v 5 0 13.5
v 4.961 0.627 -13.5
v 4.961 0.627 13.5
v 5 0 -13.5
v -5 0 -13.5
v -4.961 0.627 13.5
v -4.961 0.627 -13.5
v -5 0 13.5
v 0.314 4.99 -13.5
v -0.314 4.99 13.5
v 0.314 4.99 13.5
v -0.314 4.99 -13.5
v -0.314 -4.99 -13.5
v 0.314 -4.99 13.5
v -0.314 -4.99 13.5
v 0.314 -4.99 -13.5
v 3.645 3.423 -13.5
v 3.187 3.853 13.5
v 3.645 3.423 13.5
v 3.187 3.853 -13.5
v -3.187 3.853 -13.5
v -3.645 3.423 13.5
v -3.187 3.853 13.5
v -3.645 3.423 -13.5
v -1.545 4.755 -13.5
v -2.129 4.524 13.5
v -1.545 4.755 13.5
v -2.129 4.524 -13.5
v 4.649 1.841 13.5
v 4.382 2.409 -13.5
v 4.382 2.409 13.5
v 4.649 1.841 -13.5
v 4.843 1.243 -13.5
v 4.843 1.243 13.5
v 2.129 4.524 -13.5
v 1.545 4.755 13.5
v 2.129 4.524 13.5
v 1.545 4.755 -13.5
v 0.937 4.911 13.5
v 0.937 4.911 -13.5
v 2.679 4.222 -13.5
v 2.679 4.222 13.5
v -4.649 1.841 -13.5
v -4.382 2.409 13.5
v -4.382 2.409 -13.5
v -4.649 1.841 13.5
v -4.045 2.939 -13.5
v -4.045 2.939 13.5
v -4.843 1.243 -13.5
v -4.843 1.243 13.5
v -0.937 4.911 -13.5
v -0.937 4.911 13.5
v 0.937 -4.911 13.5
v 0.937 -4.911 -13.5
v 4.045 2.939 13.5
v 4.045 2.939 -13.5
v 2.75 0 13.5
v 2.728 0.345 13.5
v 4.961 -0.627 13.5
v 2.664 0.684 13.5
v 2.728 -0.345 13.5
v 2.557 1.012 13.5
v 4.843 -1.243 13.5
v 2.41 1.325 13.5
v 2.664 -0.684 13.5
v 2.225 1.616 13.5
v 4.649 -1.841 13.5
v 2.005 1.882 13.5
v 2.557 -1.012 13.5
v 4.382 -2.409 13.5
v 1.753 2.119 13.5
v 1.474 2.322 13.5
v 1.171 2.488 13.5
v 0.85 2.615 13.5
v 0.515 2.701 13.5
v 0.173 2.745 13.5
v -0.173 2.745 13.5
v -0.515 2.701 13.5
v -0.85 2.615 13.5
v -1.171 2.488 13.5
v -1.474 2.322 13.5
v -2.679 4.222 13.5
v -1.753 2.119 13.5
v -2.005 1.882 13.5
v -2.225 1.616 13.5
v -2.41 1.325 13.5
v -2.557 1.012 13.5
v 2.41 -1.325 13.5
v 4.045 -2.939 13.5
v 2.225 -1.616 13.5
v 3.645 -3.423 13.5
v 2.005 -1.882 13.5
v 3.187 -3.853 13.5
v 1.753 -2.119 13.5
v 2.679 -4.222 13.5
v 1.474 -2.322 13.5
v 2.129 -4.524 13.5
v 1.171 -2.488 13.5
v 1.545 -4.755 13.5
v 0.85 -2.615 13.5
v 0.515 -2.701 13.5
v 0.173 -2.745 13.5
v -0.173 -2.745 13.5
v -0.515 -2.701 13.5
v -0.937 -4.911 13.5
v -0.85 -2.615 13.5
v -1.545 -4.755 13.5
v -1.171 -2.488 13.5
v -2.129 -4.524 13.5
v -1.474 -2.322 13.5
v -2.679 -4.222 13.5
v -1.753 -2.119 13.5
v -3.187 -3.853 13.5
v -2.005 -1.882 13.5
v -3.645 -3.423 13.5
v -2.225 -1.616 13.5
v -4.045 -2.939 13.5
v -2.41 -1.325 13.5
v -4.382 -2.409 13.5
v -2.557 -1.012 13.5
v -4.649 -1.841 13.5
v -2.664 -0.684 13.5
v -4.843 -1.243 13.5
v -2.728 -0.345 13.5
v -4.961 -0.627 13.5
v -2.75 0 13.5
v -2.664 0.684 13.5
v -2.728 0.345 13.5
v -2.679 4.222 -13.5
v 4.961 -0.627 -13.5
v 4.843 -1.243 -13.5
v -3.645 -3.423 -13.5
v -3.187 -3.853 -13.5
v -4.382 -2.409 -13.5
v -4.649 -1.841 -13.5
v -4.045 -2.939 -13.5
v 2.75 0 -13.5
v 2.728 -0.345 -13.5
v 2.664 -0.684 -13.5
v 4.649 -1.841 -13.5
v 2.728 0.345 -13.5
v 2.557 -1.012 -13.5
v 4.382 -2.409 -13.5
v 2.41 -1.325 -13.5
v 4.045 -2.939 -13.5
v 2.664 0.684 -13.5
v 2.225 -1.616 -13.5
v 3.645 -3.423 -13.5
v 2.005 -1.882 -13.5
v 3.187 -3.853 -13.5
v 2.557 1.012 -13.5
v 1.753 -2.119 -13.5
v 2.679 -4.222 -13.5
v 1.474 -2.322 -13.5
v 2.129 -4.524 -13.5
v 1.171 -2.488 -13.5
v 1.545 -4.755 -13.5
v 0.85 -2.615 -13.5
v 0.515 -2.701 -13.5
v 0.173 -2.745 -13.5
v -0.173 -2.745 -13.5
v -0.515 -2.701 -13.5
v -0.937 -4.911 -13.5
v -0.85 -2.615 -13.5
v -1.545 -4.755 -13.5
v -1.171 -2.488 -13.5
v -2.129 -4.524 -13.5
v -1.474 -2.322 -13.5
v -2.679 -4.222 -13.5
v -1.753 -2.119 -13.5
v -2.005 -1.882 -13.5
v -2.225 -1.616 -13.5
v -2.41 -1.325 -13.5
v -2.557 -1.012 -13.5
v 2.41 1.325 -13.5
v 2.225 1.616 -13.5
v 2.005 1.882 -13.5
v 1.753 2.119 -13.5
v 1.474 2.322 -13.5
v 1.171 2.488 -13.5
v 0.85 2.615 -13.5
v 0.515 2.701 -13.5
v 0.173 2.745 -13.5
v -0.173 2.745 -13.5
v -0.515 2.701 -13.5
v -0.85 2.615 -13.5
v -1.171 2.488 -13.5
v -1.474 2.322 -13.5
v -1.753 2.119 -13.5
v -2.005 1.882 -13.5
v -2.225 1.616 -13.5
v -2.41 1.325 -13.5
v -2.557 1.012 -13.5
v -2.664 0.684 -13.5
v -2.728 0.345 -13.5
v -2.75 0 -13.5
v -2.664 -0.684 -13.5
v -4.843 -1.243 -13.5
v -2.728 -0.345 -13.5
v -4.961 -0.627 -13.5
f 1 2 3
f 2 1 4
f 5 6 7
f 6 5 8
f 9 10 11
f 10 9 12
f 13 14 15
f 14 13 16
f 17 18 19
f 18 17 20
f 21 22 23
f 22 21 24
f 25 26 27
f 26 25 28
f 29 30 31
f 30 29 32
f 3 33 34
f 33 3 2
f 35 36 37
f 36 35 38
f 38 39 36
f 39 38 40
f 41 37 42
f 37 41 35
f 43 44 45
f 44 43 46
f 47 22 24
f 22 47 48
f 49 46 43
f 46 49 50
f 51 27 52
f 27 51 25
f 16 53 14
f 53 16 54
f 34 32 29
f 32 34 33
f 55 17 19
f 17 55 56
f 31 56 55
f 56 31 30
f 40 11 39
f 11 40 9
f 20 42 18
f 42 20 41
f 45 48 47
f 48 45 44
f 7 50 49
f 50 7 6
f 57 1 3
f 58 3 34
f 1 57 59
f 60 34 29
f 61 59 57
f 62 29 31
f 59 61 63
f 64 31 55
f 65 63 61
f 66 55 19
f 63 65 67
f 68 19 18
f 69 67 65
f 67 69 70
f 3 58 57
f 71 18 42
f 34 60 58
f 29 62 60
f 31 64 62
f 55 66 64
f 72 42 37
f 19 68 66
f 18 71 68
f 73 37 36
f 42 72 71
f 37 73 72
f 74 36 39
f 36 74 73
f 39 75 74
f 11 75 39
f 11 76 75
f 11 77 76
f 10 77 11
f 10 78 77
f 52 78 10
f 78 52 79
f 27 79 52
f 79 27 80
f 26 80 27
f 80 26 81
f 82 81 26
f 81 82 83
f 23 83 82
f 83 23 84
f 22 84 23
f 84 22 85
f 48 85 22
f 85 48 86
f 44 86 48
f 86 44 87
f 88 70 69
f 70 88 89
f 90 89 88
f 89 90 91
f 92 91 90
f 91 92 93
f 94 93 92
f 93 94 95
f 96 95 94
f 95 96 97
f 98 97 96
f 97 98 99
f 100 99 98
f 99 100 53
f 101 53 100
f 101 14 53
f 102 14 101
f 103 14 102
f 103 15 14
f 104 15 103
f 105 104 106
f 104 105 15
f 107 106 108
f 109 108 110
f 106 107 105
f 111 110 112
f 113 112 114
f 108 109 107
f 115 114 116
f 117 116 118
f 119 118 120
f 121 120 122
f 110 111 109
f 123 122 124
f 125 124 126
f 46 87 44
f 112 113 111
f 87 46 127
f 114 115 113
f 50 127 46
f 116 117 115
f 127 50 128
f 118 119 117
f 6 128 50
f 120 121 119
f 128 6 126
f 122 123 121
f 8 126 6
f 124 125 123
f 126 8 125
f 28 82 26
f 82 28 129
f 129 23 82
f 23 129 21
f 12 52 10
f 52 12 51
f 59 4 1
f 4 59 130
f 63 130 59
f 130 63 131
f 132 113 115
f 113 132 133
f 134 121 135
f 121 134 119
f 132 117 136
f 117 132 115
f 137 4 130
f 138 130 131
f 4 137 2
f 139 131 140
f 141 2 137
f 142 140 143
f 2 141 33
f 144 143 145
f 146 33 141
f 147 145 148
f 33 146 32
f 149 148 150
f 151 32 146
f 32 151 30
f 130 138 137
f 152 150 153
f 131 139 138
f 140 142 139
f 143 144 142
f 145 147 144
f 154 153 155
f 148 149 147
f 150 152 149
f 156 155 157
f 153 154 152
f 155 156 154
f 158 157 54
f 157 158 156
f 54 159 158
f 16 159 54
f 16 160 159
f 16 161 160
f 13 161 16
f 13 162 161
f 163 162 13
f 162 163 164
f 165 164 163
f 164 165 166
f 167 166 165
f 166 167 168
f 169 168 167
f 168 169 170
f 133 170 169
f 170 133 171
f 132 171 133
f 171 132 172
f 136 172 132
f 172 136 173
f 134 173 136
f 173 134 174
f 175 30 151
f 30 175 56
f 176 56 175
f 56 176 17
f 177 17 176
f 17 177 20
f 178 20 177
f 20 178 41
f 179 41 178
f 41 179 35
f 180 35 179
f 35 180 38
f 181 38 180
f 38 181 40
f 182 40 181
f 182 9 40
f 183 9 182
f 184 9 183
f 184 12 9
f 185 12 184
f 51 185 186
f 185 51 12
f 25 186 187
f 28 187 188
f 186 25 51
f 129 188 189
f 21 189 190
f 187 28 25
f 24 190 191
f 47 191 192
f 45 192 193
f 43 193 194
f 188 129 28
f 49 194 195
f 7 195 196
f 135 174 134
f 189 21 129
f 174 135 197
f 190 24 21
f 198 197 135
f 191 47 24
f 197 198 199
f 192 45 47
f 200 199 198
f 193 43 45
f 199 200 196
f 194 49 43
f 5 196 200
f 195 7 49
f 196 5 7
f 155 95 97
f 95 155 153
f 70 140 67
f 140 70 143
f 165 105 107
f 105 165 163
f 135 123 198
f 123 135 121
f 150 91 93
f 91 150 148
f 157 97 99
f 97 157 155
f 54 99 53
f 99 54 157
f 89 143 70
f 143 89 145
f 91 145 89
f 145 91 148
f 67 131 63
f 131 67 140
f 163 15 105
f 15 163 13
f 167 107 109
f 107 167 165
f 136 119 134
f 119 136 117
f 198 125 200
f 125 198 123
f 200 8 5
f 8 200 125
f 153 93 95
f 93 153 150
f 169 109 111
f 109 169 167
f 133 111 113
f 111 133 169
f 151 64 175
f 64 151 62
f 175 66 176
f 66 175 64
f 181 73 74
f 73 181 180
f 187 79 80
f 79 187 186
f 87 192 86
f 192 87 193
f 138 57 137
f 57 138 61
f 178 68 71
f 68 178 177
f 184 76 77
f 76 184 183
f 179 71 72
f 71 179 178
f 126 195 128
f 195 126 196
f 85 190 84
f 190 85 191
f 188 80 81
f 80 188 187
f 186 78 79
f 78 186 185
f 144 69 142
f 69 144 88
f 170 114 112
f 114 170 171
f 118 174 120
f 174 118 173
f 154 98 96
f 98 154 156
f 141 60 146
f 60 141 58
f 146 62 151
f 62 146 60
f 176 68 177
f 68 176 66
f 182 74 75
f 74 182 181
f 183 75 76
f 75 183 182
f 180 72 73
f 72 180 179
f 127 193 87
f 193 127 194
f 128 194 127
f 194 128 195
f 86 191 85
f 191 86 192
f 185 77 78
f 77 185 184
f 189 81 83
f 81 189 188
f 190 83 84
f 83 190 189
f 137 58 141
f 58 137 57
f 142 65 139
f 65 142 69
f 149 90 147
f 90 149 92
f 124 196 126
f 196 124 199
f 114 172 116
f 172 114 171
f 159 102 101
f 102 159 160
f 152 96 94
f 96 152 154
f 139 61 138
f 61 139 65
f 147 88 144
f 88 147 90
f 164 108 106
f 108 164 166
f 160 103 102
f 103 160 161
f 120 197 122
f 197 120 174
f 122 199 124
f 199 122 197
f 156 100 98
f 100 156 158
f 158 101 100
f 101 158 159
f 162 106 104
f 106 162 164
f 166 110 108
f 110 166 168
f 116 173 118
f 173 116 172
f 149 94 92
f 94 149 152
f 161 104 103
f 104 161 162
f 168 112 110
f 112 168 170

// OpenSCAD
$fn = 50;


difference() {
	union() {
		translate(v = [0, 0, -13.5000000000]) {
			cylinder(h = 27, r = 5.0000000000);
		}
	}
	union() {
		translate(v = [0, 0, -100.0000000000]) {
			cylinder(h = 200, r = 2.7500000000);
		}
	}
}
